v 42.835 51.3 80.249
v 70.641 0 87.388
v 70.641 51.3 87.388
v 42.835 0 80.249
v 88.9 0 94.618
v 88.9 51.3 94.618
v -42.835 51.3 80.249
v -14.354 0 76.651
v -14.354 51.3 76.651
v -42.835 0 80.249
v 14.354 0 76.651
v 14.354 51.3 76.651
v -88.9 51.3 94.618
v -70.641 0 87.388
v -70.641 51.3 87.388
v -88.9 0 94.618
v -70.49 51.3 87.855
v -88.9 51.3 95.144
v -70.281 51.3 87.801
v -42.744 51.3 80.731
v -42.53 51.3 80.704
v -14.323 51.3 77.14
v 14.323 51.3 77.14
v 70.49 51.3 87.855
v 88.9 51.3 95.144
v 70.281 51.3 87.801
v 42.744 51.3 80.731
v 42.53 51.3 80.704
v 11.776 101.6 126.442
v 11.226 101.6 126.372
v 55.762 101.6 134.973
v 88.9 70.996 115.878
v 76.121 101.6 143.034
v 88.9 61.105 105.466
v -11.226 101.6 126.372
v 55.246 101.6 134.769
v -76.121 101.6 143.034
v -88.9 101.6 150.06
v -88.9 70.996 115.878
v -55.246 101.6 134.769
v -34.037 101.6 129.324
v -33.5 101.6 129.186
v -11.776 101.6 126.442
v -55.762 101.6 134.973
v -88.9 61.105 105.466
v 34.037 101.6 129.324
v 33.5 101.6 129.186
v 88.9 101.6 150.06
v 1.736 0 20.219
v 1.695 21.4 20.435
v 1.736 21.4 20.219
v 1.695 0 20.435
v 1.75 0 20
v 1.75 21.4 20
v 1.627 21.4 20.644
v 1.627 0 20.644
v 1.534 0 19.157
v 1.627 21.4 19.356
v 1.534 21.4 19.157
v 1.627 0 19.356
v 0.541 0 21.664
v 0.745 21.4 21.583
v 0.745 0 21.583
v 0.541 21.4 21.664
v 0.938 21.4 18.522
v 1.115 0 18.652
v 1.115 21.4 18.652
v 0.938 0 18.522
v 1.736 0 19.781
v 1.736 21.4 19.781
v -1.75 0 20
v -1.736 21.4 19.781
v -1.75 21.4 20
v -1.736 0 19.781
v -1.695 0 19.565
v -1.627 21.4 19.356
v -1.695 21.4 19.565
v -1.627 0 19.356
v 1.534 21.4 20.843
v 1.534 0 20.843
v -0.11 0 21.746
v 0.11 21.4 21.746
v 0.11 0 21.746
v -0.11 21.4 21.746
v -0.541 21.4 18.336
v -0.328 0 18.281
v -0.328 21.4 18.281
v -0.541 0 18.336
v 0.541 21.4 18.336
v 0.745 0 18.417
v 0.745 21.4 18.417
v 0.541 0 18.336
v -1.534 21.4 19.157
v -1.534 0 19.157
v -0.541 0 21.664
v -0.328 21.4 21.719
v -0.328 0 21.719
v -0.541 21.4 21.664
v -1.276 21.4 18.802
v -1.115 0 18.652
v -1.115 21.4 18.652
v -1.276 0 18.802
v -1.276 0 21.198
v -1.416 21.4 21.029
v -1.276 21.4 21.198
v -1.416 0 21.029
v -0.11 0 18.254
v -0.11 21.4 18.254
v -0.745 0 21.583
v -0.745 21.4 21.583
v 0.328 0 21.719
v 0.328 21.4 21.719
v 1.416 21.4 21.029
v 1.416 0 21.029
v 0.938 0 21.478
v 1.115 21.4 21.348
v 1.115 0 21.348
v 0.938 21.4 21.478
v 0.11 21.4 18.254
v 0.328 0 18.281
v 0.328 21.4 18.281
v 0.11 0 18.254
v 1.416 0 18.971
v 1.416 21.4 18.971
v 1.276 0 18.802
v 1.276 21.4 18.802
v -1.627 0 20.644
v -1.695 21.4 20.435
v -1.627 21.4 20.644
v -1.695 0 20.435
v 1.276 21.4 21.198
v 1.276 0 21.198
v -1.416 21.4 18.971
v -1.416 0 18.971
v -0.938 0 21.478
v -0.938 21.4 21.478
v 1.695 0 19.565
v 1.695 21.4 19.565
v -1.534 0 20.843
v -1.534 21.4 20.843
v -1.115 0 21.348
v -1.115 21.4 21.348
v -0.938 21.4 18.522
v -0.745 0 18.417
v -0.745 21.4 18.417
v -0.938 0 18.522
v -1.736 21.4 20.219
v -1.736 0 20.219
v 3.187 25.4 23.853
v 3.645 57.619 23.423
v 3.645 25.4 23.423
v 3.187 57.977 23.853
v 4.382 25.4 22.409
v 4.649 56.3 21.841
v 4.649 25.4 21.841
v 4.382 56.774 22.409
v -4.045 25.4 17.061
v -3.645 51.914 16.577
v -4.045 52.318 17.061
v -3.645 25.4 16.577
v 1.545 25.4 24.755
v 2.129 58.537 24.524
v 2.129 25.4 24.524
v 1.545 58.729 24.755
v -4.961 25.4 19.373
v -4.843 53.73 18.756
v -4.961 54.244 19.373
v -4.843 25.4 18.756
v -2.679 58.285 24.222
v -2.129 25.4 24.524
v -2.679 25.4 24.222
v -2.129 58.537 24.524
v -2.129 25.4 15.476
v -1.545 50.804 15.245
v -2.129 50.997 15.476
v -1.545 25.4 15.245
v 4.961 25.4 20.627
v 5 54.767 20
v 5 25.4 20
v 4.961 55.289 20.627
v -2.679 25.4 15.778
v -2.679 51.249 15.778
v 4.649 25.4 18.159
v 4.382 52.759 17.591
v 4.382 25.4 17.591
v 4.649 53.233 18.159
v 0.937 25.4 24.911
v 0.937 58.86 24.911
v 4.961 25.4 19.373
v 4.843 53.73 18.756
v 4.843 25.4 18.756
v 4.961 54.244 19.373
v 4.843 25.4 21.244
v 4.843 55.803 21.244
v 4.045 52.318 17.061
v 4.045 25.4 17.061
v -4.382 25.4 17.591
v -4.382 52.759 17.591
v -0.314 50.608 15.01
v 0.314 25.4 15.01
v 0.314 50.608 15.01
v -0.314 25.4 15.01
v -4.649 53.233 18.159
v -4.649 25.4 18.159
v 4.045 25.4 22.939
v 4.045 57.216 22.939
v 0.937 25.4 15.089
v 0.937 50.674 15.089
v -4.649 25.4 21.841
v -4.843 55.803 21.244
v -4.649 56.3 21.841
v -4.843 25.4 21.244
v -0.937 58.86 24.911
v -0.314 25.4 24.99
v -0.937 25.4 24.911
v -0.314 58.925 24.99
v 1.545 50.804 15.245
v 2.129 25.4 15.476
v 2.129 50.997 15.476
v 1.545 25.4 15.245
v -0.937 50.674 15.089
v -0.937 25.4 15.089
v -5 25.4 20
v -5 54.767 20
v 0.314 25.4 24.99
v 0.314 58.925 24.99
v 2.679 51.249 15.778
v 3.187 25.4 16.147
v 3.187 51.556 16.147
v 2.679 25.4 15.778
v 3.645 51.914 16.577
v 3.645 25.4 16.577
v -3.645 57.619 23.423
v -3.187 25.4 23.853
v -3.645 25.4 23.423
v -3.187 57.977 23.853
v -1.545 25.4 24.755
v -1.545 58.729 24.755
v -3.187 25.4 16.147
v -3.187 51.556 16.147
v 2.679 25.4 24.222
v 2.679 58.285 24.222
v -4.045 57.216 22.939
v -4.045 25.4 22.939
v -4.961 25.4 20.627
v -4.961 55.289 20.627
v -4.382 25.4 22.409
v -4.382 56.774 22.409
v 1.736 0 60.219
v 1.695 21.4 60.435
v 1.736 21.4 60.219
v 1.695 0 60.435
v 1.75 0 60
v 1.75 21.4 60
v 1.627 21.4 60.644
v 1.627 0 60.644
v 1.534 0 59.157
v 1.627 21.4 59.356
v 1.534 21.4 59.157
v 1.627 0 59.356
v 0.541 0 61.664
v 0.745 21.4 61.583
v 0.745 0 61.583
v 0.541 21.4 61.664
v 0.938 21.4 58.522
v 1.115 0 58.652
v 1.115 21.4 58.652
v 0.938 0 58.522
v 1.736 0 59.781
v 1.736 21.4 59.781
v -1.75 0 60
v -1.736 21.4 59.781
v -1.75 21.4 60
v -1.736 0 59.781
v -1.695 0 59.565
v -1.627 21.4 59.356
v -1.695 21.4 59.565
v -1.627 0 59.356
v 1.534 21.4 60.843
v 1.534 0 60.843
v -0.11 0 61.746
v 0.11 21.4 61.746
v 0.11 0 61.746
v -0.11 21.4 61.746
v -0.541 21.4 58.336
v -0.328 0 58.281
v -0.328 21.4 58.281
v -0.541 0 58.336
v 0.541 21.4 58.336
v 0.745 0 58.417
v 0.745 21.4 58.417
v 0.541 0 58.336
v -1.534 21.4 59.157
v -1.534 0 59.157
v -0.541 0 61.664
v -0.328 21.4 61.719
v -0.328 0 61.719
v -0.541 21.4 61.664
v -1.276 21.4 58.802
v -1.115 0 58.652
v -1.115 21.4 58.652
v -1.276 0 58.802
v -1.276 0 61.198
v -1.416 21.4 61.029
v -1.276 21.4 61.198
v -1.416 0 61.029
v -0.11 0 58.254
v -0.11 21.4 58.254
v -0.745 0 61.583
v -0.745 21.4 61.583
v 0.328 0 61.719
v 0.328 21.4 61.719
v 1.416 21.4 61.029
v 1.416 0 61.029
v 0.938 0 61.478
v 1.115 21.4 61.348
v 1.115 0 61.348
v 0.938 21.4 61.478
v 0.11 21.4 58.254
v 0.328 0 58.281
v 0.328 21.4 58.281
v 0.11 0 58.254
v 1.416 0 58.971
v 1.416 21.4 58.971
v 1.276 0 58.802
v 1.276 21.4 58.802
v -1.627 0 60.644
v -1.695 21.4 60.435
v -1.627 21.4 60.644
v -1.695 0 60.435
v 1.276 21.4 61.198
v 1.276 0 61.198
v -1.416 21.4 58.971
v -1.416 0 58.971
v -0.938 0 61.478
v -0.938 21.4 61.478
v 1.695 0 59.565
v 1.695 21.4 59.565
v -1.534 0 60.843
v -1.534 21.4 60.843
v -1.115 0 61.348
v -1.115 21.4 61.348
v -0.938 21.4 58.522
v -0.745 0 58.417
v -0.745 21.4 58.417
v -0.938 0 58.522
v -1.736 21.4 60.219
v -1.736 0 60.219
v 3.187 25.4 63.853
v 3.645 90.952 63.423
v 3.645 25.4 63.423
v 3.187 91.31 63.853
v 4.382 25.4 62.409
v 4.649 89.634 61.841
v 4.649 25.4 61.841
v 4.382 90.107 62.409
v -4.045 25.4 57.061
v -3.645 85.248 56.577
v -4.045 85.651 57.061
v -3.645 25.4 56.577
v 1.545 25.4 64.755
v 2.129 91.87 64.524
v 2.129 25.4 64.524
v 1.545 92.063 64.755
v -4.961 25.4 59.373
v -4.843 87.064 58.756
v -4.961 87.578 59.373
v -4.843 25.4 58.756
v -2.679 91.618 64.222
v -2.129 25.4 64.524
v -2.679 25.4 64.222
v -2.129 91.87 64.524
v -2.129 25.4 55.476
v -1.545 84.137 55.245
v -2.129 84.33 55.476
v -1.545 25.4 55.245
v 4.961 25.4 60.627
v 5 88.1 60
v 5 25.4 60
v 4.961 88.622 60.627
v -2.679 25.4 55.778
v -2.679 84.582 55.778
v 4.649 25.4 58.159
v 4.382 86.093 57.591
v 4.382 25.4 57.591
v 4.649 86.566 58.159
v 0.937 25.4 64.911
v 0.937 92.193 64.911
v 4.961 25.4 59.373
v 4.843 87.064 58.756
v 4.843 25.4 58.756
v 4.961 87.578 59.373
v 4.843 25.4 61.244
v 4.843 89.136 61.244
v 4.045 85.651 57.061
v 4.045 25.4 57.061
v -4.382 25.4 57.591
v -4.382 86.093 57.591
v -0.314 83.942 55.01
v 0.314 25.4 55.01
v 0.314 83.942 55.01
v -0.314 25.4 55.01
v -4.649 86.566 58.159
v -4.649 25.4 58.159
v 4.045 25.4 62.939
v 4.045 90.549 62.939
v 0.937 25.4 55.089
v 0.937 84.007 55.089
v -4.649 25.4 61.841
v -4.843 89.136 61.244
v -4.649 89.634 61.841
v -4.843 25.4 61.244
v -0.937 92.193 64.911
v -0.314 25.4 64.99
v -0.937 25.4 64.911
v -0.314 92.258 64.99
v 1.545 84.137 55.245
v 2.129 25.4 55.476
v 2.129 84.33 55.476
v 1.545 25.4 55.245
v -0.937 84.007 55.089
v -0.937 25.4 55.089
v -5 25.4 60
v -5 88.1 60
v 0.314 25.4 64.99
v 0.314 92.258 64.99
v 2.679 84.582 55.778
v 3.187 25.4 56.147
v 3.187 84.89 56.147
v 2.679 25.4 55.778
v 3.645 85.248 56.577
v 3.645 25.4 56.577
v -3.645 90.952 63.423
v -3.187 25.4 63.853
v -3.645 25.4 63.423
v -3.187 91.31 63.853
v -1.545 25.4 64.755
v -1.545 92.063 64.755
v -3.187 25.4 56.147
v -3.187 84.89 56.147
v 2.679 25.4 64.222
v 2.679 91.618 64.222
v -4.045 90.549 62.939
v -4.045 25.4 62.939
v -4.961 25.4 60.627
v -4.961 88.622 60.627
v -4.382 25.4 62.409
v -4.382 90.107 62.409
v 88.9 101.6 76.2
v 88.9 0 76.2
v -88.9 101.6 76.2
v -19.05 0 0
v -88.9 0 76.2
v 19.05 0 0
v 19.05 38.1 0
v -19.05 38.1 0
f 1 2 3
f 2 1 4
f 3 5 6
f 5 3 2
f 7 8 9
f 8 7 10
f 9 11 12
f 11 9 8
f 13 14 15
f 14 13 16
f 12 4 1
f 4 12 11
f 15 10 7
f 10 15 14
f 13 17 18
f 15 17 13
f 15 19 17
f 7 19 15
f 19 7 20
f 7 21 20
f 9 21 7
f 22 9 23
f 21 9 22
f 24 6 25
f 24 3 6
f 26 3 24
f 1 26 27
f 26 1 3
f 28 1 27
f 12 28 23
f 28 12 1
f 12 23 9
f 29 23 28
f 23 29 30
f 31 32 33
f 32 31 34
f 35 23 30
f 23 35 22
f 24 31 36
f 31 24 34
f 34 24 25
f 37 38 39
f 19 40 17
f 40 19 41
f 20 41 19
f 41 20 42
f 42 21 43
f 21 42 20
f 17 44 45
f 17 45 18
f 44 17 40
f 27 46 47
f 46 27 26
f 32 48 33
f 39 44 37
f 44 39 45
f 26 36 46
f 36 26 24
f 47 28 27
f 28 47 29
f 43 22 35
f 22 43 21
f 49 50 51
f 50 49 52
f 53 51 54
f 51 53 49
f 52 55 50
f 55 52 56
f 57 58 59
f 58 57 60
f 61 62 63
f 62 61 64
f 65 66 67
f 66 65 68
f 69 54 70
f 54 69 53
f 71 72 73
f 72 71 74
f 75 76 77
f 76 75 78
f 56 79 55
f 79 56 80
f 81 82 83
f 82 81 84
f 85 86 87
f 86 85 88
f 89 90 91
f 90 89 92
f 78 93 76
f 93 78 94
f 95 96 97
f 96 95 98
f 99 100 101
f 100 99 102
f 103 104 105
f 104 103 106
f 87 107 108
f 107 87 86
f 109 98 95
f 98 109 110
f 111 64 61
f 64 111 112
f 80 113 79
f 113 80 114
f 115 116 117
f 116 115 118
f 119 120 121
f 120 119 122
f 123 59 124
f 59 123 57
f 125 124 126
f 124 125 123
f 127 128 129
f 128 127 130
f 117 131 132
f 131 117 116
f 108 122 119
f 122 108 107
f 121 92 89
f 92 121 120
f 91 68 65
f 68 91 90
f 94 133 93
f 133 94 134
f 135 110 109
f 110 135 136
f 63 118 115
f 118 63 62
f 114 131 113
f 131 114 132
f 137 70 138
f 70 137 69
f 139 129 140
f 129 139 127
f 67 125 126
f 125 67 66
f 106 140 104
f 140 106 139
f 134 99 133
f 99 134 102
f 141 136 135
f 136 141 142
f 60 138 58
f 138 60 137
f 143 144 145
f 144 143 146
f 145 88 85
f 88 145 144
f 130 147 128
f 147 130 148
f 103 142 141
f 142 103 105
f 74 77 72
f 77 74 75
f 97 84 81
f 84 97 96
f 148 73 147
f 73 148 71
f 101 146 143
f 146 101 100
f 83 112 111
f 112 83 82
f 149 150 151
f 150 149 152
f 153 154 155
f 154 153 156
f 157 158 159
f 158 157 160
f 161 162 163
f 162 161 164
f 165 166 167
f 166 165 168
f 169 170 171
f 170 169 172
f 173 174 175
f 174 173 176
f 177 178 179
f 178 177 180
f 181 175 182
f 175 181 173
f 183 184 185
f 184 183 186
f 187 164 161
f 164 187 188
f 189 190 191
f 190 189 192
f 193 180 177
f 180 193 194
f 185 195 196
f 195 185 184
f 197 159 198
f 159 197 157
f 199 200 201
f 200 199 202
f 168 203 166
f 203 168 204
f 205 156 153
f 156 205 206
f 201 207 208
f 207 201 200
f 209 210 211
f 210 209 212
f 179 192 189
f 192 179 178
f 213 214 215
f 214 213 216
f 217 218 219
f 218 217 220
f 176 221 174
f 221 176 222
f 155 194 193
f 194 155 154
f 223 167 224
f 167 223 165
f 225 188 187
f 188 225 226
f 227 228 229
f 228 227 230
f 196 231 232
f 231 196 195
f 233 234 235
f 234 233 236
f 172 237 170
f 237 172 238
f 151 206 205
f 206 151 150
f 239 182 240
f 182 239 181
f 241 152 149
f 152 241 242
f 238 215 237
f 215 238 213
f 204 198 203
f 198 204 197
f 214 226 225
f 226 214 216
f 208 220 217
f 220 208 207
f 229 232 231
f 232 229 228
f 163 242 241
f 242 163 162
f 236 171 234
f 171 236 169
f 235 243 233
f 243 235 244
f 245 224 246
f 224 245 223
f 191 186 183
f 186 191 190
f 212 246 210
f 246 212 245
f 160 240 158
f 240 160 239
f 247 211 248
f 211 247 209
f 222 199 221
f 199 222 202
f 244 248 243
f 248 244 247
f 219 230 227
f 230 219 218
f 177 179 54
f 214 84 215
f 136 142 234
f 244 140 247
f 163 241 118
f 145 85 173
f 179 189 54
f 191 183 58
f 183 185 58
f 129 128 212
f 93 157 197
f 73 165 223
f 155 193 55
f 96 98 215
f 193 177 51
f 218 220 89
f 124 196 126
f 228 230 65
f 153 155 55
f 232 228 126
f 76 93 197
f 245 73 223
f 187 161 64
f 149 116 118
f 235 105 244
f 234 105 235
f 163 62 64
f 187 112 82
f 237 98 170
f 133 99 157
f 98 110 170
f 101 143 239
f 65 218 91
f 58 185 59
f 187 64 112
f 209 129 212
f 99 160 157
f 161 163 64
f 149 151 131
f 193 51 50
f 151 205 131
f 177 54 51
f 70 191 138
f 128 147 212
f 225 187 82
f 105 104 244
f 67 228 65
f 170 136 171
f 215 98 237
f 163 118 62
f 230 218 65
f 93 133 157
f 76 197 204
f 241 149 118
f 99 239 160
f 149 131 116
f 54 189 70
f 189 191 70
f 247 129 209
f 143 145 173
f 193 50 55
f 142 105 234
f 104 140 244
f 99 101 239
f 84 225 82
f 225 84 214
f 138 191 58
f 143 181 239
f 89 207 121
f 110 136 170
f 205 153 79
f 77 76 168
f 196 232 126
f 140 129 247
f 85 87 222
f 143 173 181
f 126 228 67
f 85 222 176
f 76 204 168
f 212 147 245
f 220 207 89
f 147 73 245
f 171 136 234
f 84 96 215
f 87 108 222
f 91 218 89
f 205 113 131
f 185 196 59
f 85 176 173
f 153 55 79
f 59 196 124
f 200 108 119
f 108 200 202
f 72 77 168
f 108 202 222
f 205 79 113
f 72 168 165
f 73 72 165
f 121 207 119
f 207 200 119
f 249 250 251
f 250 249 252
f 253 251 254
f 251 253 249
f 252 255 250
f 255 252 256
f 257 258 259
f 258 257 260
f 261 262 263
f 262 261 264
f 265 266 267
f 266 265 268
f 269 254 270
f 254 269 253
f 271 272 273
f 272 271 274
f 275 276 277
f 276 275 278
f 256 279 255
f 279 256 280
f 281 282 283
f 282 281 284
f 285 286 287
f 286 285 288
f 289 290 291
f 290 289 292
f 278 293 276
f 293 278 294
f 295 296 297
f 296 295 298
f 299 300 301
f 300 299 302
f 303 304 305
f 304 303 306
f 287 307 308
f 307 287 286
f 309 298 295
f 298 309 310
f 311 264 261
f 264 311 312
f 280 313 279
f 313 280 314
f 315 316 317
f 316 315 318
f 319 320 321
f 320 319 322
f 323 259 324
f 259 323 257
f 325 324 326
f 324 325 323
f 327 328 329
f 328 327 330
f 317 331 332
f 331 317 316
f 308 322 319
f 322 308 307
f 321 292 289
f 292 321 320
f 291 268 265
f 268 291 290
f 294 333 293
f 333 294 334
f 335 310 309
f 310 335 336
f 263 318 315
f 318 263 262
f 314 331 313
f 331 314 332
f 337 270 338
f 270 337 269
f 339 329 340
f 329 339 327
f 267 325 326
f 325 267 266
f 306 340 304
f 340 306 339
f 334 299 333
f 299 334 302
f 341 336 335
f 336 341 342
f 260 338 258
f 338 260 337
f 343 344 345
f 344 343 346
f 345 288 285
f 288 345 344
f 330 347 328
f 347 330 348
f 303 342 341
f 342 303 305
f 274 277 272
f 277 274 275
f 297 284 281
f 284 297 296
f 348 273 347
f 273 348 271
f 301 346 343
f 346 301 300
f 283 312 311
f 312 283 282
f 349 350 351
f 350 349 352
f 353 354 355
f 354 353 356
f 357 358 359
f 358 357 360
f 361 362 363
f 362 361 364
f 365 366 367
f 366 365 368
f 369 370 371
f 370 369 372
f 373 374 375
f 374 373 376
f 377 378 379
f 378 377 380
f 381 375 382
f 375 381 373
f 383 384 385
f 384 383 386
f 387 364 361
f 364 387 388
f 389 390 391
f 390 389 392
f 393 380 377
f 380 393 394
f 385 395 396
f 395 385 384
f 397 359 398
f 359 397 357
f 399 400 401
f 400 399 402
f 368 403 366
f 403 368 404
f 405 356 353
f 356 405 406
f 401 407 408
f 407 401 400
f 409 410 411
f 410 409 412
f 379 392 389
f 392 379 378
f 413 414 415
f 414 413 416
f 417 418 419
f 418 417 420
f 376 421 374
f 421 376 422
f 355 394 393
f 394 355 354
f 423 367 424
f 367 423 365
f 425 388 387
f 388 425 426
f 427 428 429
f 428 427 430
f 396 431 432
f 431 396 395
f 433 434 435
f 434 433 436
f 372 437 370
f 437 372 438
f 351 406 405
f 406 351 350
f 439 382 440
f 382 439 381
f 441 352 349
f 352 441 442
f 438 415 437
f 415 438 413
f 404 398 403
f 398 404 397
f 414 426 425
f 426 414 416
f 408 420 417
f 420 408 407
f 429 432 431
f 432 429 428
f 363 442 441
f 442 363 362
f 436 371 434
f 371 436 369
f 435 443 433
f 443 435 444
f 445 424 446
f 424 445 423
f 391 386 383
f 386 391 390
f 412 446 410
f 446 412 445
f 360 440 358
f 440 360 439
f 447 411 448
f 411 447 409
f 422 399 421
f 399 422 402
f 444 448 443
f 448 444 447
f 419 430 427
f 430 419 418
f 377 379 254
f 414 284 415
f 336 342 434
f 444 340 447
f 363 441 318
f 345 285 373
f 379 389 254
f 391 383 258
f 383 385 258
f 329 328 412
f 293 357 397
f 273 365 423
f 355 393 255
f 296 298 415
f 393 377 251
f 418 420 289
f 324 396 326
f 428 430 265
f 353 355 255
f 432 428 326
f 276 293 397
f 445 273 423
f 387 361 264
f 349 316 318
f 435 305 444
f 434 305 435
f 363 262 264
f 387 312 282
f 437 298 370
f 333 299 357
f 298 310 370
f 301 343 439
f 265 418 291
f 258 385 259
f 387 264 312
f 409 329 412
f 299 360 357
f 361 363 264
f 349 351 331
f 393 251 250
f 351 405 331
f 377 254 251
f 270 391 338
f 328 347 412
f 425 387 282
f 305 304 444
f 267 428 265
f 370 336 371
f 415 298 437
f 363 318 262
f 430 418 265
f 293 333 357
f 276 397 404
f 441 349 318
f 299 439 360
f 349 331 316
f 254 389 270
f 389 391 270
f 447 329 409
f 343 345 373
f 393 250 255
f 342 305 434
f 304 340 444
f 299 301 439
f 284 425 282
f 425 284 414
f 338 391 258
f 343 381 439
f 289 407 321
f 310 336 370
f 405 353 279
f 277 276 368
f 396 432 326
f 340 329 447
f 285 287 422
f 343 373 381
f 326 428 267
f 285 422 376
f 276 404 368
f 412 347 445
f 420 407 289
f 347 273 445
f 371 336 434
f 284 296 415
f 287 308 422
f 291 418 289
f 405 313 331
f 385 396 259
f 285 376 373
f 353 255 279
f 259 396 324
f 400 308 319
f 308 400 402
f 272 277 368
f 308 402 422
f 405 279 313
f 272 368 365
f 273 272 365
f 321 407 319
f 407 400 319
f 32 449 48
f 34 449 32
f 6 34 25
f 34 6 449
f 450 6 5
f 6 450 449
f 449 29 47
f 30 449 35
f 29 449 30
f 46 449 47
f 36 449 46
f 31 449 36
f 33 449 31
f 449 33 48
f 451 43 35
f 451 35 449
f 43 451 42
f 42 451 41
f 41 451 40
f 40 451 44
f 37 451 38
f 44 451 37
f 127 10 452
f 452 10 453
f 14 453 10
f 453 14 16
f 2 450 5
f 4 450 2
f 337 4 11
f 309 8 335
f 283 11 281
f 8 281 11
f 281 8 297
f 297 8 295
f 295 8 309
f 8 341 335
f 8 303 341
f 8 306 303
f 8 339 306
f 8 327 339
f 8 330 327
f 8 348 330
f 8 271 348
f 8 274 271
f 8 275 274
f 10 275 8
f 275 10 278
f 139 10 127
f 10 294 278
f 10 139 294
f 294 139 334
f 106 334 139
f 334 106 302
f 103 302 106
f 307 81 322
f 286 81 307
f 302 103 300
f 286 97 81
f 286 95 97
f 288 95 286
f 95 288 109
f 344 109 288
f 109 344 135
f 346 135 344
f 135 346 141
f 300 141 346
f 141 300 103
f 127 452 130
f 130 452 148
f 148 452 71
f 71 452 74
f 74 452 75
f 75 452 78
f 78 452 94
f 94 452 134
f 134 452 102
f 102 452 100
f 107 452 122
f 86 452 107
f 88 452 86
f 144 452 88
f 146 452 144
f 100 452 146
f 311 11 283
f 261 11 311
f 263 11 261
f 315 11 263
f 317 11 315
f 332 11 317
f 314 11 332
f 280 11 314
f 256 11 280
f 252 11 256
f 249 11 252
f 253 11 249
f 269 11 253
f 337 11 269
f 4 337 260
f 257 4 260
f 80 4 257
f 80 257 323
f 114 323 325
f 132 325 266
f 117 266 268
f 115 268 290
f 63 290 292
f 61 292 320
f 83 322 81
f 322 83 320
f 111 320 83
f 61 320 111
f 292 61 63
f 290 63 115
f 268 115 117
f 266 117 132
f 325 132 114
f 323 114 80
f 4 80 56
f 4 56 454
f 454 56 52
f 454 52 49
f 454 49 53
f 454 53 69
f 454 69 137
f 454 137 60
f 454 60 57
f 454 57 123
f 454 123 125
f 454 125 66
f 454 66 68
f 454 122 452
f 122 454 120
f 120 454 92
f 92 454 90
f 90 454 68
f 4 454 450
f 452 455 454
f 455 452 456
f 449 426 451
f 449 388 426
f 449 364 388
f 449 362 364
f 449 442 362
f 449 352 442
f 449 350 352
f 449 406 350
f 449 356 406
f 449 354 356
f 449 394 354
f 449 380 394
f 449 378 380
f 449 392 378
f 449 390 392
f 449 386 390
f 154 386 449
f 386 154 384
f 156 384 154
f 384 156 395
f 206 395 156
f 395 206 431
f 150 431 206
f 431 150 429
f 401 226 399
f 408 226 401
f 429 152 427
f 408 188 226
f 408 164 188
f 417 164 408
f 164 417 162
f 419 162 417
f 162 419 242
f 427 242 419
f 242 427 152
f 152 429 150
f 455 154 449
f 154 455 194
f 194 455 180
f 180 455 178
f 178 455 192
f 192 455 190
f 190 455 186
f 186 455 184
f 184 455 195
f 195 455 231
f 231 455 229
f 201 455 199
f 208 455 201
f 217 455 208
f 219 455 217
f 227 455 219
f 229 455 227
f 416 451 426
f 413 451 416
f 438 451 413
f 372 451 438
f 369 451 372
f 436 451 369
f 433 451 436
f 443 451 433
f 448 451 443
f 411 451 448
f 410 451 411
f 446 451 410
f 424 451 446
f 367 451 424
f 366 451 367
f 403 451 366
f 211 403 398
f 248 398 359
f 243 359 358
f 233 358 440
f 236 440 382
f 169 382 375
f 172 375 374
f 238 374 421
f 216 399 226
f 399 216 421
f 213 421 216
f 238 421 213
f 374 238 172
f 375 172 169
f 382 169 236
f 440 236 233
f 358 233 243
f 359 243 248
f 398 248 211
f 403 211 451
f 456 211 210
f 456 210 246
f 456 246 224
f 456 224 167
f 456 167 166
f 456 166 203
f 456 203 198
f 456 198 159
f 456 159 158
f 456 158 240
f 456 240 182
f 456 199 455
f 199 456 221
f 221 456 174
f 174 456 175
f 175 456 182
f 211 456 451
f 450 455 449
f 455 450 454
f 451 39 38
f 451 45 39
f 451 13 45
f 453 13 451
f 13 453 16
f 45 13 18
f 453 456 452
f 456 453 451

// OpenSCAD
$fn = 50;

mm_in_inches = 25.4;

cutRadius = 9*mm_in_inches;
cutHeight = 2*mm_in_inches;

difference(){
	hull(){
		translate([(1.5 * mm_in_inches)/-2,0,0])
		cube([
			1.5 * mm_in_inches,
			1.5 * mm_in_inches,
			4 * mm_in_inches
		]);
		translate([-3.5*mm_in_inches,0, 3*mm_in_inches])
		cube([
			7*mm_in_inches,
			4*mm_in_inches,
			4*mm_in_inches
		]);
	}
	translate([0,0,12 * mm_in_inches])
		rotate([-90,0,0]){
			translate([0,0,-.5])
			cylinder(2*mm_in_inches+1, r=cutRadius);
			translate([0,0,2*mm_in_inches])
				cylinder(h=2*mm_in_inches+1, r1=cutRadius, r2=cutRadius-(2*mm_in_inches));
		}
	
	//screw cuts
	rotate([90,0,0])
		translate([0,60,-250 - mm_in_inches])
			union(){
				cylinder(r=1.75, h=500);
				cylinder(r=5, h=250);
				translate([0,0,250])
				cylinder(r1=5, r2=1.75, h=4);
			}
		
	rotate([90,0,0])
		translate([0,20,-250 - mm_in_inches])
			union(){
				cylinder(r=1.75, h=500);
				cylinder(r=5, h=250);
				translate([0,0,250])
				cylinder(r1=5, r2=1.75, h=4);
			}
}
